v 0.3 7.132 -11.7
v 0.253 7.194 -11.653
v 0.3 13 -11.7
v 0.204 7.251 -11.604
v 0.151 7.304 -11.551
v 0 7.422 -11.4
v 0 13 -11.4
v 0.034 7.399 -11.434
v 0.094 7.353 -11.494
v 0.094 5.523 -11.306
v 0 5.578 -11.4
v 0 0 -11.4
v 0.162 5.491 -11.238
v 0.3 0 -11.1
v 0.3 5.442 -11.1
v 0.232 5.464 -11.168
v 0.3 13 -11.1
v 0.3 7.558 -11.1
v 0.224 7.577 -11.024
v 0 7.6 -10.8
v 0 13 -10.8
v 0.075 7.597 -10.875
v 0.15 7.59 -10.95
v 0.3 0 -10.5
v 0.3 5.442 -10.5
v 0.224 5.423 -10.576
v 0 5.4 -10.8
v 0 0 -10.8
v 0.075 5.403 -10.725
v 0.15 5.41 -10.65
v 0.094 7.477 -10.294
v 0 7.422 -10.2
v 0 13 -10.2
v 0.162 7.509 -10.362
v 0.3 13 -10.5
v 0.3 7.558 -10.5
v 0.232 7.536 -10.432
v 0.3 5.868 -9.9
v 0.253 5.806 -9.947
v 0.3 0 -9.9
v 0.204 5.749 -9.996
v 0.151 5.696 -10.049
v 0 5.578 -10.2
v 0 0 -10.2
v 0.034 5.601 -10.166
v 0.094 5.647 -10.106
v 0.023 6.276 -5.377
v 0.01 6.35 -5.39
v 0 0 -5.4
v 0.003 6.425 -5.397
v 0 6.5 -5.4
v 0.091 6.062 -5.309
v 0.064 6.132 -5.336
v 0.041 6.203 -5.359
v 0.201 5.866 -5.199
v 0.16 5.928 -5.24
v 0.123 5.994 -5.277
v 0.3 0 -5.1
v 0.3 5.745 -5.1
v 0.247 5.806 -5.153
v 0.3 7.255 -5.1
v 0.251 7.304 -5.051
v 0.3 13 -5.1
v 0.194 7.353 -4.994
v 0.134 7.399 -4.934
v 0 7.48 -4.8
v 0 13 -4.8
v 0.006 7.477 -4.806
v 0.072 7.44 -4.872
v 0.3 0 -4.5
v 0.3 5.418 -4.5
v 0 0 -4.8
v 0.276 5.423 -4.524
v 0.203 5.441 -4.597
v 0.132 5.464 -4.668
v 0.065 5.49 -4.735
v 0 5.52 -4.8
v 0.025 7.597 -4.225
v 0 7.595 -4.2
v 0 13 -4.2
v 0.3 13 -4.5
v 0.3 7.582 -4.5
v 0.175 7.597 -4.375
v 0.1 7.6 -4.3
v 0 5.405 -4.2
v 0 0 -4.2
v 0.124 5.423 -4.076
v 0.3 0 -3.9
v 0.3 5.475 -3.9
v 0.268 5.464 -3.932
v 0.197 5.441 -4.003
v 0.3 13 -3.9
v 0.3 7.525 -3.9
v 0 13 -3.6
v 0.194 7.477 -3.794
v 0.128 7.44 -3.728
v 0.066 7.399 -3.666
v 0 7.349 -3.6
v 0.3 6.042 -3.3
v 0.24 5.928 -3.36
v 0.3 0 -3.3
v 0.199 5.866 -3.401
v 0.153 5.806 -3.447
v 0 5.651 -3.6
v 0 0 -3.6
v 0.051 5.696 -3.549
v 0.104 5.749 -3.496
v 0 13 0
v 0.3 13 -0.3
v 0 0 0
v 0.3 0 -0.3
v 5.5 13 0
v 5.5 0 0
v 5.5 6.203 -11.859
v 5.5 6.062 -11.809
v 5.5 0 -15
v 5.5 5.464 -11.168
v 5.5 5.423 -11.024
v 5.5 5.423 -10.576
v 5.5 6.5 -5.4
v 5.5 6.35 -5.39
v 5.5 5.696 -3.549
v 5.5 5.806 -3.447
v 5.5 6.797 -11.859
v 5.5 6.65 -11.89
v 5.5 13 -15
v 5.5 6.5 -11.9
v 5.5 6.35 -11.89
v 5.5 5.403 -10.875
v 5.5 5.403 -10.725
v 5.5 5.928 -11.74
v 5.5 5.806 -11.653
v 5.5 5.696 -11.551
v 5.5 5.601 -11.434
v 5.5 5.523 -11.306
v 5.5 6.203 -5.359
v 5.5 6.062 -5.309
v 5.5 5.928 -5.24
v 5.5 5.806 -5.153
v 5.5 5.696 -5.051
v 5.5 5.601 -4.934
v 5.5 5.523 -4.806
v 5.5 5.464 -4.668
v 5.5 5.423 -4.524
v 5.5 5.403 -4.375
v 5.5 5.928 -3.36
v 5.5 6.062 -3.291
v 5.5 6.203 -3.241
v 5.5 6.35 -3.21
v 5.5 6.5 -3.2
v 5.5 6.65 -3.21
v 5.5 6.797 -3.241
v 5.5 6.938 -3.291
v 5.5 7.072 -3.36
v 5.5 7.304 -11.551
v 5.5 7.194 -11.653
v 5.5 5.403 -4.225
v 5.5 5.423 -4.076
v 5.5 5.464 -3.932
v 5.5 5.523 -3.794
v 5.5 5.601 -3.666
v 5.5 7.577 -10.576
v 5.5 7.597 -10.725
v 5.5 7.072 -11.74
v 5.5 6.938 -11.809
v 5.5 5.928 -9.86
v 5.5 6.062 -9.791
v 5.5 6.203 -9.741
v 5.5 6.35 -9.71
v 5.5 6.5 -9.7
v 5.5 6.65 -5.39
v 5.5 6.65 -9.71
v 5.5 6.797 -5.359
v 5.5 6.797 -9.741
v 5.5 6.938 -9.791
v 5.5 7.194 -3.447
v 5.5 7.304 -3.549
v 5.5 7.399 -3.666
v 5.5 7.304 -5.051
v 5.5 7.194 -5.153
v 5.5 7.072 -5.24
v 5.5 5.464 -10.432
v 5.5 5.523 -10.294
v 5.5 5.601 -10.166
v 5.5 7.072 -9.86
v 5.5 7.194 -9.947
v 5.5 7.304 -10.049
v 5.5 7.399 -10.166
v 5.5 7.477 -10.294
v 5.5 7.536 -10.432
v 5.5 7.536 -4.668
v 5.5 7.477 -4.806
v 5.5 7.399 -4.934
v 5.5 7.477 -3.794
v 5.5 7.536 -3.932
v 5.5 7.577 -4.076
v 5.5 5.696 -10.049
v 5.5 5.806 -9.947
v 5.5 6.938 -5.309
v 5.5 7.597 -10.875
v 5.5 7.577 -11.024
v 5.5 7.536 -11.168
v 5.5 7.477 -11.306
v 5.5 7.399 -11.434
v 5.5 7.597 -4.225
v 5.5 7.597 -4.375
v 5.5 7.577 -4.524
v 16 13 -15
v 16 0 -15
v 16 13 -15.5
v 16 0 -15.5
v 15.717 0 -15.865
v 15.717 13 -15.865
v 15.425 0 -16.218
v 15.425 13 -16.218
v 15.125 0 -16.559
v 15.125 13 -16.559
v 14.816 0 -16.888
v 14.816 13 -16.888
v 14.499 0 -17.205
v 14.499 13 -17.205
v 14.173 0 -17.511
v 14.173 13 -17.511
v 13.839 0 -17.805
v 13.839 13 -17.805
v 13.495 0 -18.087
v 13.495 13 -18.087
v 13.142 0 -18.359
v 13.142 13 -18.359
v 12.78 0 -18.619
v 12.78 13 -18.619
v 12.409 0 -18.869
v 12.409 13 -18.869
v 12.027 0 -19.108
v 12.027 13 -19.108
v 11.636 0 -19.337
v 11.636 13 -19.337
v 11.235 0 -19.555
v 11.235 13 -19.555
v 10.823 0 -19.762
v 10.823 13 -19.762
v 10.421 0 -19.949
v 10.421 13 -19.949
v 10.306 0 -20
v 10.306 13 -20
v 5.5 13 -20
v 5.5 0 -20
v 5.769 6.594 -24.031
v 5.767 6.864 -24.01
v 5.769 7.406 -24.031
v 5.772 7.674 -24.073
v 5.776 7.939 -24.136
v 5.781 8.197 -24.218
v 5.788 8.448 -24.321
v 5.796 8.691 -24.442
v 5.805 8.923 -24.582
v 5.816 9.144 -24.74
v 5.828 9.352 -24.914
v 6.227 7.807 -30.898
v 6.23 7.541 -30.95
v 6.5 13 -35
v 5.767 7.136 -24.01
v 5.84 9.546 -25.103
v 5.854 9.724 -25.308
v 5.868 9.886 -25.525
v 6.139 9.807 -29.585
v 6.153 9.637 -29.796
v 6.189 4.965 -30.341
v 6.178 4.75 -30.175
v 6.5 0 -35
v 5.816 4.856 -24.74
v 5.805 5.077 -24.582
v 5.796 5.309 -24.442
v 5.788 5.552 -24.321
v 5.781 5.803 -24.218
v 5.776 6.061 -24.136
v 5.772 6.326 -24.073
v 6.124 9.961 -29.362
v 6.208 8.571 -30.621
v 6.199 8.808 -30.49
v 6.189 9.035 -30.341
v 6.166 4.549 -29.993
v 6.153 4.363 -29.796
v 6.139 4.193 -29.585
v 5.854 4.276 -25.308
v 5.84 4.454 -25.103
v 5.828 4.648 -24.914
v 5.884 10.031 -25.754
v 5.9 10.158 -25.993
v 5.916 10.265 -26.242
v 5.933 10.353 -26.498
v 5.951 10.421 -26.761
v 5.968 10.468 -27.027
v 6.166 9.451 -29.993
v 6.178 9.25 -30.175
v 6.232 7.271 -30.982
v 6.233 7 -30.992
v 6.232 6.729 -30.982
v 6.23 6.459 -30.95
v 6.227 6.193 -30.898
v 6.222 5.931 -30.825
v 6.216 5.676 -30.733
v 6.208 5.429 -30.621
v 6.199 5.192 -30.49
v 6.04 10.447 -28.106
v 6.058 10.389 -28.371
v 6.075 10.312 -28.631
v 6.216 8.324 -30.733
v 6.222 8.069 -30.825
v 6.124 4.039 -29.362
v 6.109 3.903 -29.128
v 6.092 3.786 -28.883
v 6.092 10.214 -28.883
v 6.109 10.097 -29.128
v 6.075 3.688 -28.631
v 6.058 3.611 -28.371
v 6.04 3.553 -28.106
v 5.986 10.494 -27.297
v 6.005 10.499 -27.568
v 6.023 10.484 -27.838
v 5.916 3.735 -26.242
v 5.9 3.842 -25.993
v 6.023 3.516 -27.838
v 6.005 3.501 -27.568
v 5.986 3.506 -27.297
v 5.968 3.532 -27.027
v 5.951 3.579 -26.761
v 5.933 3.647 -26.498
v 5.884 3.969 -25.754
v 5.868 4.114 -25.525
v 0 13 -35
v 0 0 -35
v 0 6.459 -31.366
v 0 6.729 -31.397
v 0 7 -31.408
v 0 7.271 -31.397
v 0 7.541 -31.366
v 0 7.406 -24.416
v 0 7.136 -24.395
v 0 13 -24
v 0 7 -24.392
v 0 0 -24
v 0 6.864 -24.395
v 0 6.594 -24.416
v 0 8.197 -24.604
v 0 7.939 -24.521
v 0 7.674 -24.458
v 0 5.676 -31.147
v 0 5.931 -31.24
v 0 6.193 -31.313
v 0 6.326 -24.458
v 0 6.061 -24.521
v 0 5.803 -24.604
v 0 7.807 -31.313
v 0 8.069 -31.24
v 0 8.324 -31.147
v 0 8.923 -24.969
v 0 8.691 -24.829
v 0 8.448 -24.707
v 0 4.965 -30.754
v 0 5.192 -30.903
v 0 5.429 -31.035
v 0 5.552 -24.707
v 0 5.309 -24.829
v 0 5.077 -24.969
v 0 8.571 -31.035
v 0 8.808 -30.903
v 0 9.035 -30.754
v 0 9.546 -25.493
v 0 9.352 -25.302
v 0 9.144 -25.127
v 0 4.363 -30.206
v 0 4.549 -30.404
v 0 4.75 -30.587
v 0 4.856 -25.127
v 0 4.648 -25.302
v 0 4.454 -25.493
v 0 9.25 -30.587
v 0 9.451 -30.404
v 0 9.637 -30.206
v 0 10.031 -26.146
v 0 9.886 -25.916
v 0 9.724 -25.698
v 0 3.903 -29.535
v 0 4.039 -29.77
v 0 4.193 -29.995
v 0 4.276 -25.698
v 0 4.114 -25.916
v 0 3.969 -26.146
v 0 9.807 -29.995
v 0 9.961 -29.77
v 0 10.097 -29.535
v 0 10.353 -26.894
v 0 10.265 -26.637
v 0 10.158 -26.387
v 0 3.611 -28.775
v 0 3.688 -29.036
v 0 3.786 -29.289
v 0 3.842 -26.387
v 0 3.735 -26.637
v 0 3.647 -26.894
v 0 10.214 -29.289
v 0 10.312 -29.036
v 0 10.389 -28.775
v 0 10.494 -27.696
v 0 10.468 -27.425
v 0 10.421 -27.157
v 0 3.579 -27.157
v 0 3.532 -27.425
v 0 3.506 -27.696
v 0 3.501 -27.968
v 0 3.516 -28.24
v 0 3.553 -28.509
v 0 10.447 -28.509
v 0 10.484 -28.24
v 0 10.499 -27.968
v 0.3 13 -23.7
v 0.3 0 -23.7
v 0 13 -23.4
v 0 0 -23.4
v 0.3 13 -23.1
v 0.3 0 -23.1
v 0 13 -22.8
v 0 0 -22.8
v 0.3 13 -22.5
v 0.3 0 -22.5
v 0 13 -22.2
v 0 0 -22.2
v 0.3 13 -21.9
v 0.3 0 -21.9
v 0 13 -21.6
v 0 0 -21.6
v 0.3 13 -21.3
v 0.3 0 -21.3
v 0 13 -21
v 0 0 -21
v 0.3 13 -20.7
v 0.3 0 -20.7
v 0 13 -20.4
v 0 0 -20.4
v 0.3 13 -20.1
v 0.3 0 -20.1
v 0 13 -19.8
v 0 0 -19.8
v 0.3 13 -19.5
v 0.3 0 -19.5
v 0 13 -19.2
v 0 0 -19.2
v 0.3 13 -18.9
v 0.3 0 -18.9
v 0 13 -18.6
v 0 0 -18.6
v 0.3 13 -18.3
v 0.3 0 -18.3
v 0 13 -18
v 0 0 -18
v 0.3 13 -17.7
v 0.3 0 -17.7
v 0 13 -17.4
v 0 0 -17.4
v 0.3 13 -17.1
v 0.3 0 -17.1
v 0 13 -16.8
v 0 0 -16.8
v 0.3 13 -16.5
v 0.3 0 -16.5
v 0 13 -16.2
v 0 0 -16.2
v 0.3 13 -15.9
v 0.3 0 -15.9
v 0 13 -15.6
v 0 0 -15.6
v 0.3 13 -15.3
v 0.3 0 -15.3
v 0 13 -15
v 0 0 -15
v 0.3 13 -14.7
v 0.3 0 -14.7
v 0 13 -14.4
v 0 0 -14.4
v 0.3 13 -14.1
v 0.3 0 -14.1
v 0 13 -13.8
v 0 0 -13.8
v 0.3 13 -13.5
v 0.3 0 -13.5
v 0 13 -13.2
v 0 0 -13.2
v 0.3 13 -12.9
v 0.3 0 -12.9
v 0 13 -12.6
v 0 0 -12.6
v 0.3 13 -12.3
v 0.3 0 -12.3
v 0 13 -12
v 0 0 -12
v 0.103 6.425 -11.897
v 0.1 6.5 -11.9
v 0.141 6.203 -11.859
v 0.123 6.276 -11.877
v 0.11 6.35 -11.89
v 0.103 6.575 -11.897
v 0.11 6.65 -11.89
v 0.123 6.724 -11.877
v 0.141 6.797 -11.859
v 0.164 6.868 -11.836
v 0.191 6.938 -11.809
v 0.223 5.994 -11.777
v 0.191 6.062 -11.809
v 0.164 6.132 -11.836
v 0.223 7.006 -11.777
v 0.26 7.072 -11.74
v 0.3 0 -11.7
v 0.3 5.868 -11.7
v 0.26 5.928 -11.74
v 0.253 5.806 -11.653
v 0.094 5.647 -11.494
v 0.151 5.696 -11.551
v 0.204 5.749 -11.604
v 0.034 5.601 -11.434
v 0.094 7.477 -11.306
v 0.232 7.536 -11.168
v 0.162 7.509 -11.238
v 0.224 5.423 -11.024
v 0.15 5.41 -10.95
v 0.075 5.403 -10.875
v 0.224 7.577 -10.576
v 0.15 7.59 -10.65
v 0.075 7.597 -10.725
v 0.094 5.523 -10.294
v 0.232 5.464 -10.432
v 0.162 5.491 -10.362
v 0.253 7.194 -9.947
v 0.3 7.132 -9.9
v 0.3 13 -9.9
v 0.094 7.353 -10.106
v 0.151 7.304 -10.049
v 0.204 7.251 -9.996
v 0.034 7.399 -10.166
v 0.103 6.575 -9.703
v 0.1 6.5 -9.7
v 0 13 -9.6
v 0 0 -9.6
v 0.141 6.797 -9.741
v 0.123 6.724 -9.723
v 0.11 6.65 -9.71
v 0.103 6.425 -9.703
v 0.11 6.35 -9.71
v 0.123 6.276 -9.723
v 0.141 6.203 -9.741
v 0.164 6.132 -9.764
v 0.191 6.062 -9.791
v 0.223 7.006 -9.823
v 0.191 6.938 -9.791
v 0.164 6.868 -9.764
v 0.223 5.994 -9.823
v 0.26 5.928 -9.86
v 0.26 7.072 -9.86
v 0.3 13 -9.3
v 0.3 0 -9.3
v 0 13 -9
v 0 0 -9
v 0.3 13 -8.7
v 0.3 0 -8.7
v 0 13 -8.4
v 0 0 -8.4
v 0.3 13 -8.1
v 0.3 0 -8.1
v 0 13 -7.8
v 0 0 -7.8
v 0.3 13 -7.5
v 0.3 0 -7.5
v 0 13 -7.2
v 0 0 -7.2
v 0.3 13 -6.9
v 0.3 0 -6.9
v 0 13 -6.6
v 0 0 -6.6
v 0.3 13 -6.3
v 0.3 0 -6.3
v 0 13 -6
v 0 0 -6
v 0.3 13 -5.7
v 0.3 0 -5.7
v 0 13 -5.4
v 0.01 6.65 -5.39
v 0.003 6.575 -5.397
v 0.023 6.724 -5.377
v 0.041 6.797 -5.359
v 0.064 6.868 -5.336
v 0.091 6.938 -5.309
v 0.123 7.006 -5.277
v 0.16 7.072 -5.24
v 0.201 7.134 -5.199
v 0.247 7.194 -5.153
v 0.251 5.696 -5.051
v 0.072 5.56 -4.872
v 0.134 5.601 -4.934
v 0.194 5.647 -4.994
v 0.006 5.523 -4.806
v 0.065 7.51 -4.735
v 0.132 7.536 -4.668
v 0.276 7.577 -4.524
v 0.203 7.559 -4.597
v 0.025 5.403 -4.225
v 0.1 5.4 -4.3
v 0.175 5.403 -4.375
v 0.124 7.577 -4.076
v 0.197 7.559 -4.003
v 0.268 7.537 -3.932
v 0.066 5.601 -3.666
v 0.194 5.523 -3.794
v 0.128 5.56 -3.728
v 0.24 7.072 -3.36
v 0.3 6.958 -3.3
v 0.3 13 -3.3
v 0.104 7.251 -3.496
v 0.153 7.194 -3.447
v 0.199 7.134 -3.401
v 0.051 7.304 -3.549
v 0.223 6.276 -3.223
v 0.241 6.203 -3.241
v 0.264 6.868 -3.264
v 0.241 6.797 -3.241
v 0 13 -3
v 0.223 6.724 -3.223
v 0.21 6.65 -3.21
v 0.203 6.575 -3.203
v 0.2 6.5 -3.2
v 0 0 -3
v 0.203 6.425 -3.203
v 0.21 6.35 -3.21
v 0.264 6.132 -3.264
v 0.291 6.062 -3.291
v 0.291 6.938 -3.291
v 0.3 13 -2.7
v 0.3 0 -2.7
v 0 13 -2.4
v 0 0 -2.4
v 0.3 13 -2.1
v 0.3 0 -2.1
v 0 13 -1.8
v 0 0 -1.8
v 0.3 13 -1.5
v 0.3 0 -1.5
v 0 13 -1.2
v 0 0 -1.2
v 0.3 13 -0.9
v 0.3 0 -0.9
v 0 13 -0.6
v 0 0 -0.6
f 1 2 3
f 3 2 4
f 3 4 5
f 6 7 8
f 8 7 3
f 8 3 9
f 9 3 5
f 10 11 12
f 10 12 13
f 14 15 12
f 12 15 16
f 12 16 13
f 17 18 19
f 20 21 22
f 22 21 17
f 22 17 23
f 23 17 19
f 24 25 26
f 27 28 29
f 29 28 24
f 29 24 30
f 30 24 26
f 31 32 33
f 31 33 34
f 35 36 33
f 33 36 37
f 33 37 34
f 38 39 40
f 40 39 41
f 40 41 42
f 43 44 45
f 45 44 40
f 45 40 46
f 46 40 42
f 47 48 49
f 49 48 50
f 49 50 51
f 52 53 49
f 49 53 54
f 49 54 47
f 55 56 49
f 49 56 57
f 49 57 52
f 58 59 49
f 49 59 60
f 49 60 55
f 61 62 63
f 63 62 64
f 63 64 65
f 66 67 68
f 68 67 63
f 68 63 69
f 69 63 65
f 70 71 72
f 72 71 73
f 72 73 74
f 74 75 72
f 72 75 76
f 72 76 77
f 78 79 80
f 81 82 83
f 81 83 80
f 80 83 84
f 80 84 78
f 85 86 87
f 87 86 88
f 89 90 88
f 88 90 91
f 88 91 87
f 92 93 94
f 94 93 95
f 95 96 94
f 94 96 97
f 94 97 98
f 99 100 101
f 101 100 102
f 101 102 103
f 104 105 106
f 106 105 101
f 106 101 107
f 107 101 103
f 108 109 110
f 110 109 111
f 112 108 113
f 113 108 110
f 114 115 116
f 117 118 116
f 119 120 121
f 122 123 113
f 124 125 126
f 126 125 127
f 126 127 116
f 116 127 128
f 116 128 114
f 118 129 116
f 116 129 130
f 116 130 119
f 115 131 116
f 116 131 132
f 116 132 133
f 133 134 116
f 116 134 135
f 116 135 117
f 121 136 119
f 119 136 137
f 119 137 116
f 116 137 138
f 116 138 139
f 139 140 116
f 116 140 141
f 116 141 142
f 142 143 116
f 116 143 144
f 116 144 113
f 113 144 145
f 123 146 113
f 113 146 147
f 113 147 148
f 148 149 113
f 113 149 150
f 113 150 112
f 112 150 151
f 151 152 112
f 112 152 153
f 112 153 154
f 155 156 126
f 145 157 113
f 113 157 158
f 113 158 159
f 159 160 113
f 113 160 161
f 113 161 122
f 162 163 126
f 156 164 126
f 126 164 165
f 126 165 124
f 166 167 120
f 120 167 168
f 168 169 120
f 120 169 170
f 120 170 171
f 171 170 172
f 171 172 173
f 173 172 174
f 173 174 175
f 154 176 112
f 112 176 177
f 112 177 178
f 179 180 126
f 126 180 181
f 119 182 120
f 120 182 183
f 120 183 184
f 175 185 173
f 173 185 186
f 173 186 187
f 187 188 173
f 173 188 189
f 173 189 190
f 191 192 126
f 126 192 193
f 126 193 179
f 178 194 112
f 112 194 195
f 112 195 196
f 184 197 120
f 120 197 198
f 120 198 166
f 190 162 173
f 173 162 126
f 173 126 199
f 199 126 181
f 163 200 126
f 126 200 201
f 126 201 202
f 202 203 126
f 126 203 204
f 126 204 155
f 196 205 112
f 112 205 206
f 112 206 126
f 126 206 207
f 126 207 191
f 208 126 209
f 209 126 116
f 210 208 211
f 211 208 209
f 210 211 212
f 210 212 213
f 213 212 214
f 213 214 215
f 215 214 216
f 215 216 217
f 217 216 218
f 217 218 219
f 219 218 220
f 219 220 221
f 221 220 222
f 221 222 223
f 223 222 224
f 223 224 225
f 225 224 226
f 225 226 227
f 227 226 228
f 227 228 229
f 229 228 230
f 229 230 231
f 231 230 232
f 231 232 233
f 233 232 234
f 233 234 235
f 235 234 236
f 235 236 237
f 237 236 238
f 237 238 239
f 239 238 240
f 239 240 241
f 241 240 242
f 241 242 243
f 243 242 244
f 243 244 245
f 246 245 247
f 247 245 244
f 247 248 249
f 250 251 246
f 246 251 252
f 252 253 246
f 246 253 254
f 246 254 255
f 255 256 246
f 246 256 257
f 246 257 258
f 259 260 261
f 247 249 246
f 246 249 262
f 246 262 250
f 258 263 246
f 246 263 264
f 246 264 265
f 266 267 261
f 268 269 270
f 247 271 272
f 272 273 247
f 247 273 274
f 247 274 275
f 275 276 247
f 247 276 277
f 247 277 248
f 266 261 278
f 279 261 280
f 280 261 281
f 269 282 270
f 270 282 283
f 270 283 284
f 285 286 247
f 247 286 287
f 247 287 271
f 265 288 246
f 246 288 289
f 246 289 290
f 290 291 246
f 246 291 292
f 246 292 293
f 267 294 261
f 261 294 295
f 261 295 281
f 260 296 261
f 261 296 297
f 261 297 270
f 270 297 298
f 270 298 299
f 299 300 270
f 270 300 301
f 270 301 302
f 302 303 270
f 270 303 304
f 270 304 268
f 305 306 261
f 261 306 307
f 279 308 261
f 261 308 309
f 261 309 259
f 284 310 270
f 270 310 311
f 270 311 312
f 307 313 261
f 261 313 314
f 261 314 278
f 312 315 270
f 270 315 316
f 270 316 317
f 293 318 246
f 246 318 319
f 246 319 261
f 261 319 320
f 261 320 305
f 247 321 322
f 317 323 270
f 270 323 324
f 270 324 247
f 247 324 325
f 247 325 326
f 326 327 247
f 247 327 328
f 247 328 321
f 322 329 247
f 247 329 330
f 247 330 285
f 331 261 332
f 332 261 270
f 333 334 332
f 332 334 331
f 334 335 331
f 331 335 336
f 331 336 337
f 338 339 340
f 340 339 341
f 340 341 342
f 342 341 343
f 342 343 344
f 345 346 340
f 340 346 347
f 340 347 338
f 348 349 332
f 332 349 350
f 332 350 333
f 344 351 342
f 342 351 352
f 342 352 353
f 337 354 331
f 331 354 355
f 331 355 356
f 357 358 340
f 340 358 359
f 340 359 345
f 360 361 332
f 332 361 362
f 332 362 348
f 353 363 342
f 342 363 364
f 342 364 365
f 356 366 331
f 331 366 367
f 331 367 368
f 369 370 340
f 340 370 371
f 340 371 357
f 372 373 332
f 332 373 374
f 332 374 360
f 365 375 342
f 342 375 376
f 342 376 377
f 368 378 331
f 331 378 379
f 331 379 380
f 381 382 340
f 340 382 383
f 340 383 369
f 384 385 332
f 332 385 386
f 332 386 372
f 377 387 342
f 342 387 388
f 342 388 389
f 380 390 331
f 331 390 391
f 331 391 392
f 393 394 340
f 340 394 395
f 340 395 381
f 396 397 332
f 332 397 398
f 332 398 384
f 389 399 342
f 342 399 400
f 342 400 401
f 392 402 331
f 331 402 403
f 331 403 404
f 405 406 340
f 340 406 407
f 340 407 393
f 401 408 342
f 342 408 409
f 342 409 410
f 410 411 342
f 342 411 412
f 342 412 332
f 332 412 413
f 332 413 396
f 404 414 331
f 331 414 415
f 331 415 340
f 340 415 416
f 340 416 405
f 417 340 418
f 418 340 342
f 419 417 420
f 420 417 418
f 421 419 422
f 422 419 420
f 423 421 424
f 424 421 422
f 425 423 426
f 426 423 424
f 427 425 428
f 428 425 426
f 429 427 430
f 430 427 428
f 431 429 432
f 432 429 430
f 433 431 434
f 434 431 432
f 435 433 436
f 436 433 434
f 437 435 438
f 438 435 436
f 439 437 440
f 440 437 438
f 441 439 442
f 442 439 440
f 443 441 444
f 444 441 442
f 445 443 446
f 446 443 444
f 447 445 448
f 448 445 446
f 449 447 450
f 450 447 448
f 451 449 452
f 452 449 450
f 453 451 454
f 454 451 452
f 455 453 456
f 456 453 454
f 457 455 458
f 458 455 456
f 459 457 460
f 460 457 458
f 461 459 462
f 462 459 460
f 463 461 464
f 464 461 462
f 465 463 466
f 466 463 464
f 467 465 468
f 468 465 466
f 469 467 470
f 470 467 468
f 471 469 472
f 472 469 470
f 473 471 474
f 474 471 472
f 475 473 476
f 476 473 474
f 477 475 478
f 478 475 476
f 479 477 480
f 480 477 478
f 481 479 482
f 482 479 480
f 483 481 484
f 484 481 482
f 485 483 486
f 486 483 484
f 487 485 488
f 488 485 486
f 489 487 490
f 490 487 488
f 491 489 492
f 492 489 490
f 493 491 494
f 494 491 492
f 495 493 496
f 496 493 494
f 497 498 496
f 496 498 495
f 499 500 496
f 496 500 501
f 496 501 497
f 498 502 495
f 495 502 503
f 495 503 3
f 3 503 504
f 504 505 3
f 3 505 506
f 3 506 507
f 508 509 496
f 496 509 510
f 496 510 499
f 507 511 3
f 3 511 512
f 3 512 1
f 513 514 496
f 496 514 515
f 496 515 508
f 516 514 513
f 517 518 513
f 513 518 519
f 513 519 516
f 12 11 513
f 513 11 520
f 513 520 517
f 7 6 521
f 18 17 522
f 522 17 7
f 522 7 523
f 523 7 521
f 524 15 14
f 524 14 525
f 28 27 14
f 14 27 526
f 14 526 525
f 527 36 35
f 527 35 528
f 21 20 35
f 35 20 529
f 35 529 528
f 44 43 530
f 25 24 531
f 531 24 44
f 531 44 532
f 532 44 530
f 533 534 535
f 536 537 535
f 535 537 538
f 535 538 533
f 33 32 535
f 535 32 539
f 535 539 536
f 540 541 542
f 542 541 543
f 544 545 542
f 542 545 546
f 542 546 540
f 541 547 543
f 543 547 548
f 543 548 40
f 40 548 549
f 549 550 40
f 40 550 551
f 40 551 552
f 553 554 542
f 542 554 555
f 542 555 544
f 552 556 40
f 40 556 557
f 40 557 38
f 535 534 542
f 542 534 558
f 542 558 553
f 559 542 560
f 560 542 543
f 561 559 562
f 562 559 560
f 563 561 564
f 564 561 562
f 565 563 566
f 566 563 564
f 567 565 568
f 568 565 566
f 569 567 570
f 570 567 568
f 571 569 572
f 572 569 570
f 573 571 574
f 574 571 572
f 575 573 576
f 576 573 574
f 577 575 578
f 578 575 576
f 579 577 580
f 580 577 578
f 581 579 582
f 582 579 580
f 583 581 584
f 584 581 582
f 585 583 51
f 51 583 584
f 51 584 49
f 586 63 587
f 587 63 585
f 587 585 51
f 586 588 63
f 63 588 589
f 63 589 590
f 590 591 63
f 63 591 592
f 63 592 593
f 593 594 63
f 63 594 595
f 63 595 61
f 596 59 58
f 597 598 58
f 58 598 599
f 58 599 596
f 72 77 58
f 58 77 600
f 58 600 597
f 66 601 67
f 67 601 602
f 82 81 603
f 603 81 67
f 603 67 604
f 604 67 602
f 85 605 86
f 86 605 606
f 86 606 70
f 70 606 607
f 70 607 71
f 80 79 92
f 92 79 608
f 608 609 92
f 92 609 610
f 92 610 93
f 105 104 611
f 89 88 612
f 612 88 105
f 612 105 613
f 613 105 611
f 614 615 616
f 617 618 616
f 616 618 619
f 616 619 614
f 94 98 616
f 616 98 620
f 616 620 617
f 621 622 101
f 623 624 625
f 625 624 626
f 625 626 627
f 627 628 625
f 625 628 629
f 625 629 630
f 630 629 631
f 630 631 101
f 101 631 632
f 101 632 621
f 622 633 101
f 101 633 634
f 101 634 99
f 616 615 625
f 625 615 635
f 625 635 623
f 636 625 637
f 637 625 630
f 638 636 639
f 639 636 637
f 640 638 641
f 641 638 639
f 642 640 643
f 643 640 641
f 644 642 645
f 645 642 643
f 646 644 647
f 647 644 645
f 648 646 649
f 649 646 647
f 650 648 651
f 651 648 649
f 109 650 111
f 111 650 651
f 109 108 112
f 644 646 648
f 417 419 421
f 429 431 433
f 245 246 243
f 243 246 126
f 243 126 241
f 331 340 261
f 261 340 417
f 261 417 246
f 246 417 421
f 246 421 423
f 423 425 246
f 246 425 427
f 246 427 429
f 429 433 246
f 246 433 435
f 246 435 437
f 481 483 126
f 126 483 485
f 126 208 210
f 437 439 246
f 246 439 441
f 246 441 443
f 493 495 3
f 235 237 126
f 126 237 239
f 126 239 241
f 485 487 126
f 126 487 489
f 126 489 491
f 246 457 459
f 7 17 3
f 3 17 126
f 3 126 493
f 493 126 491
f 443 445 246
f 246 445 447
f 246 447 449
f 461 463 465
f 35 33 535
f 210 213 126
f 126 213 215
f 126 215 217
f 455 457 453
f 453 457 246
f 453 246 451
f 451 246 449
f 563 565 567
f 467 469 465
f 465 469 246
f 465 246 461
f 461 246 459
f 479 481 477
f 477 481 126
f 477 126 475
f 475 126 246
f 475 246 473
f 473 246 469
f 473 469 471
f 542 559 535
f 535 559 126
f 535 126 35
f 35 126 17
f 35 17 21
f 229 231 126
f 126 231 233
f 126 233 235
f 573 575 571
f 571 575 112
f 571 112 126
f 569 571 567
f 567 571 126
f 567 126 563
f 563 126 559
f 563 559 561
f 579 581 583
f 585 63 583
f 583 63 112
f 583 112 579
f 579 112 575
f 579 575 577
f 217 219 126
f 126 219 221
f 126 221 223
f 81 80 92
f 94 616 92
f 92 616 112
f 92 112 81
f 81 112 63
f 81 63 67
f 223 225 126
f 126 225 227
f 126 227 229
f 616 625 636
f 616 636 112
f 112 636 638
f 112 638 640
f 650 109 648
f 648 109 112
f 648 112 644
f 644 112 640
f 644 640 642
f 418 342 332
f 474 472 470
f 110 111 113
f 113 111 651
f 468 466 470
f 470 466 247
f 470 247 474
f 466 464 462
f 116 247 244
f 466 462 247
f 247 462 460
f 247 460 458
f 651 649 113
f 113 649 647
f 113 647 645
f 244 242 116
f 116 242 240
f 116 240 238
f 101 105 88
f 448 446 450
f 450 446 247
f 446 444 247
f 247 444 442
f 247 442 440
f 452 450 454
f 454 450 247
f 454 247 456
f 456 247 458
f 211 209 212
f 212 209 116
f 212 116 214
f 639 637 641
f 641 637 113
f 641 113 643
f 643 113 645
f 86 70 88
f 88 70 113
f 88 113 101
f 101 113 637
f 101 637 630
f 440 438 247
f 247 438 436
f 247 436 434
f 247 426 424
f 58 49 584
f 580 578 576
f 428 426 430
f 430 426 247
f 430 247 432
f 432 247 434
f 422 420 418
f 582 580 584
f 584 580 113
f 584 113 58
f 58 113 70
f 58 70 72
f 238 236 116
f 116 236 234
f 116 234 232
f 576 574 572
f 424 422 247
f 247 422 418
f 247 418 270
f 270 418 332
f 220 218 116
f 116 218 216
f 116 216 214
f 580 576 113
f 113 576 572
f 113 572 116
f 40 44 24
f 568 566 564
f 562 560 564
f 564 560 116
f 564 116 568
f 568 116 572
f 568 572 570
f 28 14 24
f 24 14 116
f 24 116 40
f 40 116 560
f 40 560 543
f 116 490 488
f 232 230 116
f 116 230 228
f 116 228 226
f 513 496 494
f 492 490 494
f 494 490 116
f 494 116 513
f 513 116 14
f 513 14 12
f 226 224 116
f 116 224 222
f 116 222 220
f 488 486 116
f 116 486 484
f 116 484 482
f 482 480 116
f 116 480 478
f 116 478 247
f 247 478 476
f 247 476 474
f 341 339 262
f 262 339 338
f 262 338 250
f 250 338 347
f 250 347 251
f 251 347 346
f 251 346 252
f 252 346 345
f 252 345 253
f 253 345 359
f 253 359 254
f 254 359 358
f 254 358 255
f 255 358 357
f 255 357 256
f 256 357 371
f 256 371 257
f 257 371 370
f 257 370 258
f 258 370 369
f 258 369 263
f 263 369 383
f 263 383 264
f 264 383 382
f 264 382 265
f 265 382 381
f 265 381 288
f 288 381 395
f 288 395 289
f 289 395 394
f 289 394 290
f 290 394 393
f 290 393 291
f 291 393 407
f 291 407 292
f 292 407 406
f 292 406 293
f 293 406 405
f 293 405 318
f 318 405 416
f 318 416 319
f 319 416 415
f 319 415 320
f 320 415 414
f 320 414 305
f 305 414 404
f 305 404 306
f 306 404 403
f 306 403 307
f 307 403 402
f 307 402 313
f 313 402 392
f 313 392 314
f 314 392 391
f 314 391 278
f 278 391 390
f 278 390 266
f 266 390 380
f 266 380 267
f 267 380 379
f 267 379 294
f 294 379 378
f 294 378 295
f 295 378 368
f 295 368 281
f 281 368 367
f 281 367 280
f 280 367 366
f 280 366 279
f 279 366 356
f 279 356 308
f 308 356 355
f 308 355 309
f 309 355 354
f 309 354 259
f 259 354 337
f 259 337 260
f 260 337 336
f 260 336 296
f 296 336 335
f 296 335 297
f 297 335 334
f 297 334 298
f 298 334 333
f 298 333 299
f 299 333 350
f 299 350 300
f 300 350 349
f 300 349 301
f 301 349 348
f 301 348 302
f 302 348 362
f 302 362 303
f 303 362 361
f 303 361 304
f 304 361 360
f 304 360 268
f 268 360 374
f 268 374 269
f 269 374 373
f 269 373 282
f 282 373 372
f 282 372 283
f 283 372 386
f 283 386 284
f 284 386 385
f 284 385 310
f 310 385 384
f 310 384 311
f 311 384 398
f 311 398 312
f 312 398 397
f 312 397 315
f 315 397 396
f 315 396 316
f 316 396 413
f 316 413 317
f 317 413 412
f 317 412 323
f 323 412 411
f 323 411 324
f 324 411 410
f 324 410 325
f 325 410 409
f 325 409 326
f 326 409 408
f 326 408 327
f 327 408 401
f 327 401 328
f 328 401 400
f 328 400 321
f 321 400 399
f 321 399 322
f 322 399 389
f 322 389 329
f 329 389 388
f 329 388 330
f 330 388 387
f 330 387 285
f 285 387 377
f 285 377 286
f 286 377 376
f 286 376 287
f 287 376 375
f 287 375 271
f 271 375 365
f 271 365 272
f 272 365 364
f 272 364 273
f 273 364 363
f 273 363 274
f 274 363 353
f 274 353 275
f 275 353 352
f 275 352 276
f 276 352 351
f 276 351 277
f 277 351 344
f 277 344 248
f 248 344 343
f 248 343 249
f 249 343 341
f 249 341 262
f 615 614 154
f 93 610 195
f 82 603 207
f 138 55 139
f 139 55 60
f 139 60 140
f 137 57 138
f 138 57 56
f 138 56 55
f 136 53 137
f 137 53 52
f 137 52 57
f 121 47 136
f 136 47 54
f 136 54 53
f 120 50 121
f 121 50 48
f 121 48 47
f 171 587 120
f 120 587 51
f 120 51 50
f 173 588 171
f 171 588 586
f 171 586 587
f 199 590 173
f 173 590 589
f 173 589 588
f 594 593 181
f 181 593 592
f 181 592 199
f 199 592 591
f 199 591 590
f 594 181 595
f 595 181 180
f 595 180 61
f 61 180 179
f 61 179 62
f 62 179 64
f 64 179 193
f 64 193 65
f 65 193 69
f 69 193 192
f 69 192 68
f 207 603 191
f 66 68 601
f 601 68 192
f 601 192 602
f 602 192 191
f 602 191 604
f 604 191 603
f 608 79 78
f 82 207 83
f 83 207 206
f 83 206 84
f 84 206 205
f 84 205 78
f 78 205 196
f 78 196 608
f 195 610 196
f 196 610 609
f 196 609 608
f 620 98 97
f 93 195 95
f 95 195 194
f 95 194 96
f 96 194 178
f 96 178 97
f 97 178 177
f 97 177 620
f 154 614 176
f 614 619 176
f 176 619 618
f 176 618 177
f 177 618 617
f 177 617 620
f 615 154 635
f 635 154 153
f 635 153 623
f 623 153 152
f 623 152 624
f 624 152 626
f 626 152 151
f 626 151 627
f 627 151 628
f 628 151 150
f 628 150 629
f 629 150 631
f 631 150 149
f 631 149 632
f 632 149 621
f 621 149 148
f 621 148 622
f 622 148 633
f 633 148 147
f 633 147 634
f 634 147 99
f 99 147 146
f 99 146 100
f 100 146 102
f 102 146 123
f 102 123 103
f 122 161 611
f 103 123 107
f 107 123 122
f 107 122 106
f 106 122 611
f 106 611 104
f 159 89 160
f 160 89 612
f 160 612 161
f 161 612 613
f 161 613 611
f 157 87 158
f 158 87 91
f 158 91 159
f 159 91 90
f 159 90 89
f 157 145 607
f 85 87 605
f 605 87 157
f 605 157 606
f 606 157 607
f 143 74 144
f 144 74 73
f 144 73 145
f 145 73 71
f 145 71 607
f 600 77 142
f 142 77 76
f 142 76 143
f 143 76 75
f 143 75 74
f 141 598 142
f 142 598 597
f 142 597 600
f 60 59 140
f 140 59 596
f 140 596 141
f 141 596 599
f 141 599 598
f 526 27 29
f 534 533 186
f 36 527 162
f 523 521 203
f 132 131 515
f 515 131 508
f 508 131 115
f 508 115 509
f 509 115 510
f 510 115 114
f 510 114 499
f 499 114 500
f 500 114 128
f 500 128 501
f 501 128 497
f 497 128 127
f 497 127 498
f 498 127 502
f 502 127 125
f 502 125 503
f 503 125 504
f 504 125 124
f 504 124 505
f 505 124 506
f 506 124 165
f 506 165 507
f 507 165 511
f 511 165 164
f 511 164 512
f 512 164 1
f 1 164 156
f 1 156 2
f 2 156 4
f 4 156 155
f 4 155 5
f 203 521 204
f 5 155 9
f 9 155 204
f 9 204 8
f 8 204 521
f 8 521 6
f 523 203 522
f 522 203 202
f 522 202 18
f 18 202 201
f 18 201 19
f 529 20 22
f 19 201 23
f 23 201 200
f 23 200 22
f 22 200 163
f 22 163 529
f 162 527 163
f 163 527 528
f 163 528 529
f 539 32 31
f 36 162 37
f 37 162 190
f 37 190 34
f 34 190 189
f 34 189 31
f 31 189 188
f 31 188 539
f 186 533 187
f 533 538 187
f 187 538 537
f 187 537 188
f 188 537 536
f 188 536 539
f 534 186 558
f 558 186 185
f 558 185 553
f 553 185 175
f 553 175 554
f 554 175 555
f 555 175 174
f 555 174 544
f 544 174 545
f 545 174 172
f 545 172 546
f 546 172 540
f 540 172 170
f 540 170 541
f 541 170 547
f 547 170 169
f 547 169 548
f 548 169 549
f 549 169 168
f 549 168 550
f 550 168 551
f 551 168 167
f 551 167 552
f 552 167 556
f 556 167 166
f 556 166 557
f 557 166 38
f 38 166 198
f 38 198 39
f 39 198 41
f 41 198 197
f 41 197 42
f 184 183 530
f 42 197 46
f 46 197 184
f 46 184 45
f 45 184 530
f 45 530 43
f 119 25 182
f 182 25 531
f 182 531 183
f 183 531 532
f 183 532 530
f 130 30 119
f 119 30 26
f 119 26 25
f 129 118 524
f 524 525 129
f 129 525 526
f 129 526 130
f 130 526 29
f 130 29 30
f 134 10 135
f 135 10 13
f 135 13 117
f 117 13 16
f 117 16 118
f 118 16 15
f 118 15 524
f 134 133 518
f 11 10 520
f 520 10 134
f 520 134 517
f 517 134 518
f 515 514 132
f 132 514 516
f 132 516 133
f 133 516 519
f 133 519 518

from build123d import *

# Parameters (mm, degrees)
EXTRUDE_1_DEPTH     = 13
SKETCH_4_R          = 3.5
CUT_EXTRUDE_3_DEPTH = 40.419530037
SKETCH_5_R          = 1.1
CUT_EXTRUDE_4_DEPTH = 10


with BuildPart() as part:
    # 草图1 → 凸台-拉伸1 (new body)
    with BuildSketch(Plane(origin=(0, 0, 0), x_dir=(1, 0, 0), z_dir=(0, 1, 0))):
        with BuildLine():
            Line((0, 35), (6.5, 35))
            Line((6.5, 35), (5.5, 20))
            Line((5.5, 20), (10.30634728, 20))
            add(Edge.make_bspline(
                [(10.30634728, 20), (13.762117506, 18.48353704), (16, 15.5)],
                knots=[0, 0, 0, 1, 1, 1], degree=2))
            Line((16, 15.5), (16, 15))
            Line((16, 15), (5.5, 15))
            Line((5.5, 15), (5.5, 0))
            Line((5.5, 0), (0, 0))
            Line((0, 0), (0.3, 0.3))
            Line((0.3, 0.3), (0, 0.6))
            Line((0, 0.6), (0.3, 0.9))
            Line((0.3, 0.9), (0, 1.2))
            Line((0, 1.2), (0.3, 1.5))
            Line((0.3, 1.5), (0, 1.8))
            Line((0, 1.8), (0.3, 2.1))
            Line((0.3, 2.1), (0, 2.4))
            Line((0, 2.4), (0.3, 2.7))
            Line((0.3, 2.7), (0, 3))
            Line((0, 3), (0.3, 3.3))
            Line((0.3, 3.3), (0, 3.6))
            Line((0, 3.6), (0.3, 3.9))
            Line((0.3, 3.9), (0, 4.2))
            Line((0, 4.2), (0.3, 4.5))
            Line((0.3, 4.5), (0, 4.8))
            Line((0, 4.8), (0.3, 5.1))
            Line((0.3, 5.1), (0, 5.4))
            Line((0, 5.4), (0.3, 5.7))
            Line((0.3, 5.7), (0, 6))
            Line((0, 6), (0.3, 6.3))
            Line((0.3, 6.3), (0, 6.6))
            Line((0, 6.6), (0.3, 6.9))
            Line((0.3, 6.9), (0, 7.2))
            Line((0, 7.2), (0.3, 7.5))
            Line((0.3, 7.5), (0, 7.8))
            Line((0, 7.8), (0.3, 8.1))
            Line((0.3, 8.1), (0, 8.4))
            Line((0, 8.4), (0.3, 8.7))
            Line((0.3, 8.7), (0, 9))
            Line((0, 9), (0.3, 9.3))
            Line((0.3, 9.3), (0, 9.6))
            Line((0, 9.6), (0.3, 9.9))
            Line((0.3, 9.9), (0, 10.2))
            Line((0, 10.2), (0.3, 10.5))
            Line((0.3, 10.5), (0, 10.8))
            Line((0, 10.8), (0.3, 11.1))
            Line((0.3, 11.1), (0, 11.4))
            Line((0, 11.4), (0.3, 11.7))
            Line((0.3, 11.7), (0, 12))
            Line((0, 12), (0.3, 12.3))
            Line((0.3, 12.3), (0, 12.6))
            Line((0, 12.6), (0.3, 12.9))
            Line((0.3, 12.9), (0, 13.2))
            Line((0, 13.2), (0.3, 13.5))
            Line((0.3, 13.5), (0, 13.8))
            Line((0, 13.8), (0.3, 14.1))
            Line((0.3, 14.1), (0, 14.4))
            Line((0, 14.4), (0.3, 14.7))
            Line((0.3, 14.7), (0, 15))
            Line((0, 15), (0.3, 15.3))
            Line((0.3, 15.3), (0, 15.6))
            Line((0, 15.6), (0.3, 15.9))
            Line((0.3, 15.9), (0, 16.2))
            Line((0, 16.2), (0.3, 16.5))
            Line((0.3, 16.5), (0, 16.8))
            Line((0, 16.8), (0.3, 17.1))
            Line((0.3, 17.1), (0, 17.4))
            Line((0, 17.4), (0.3, 17.7))
            Line((0.3, 17.7), (0, 18))
            Line((0, 18), (0.3, 18.3))
            Line((0.3, 18.3), (0, 18.6))
            Line((0, 18.6), (0.3, 18.9))
            Line((0.3, 18.9), (0, 19.2))
            Line((0, 19.2), (0.3, 19.5))
            Line((0.3, 19.5), (0, 19.8))
            Line((0, 19.8), (0.3, 20.1))
            Line((0.3, 20.1), (0, 20.4))
            Line((0, 20.4), (0.3, 20.7))
            Line((0.3, 20.7), (0, 21))
            Line((0, 21), (0.3, 21.3))
            Line((0.3, 21.3), (0, 21.6))
            Line((0, 21.6), (0.3, 21.9))
            Line((0.3, 21.9), (0, 22.2))
            Line((0, 22.2), (0.3, 22.5))
            Line((0.3, 22.5), (0, 22.8))
            Line((0, 22.8), (0.3, 23.1))
            Line((0.3, 23.1), (0, 23.4))
            Line((0, 23.4), (0.3, 23.7))
            Line((0.3, 23.7), (0, 24))
            Line((0, 24), (0, 35))
        make_face()
    extrude(amount=EXTRUDE_1_DEPTH)

    # 草图4 → 切除-拉伸3 (cut, through all)
    with BuildSketch(Plane(origin=(4.148230088, 0, 0.276548673), x_dir=(0.06651901052377392, 0, -0.9977851578566089), z_dir=(0.9977851578566089, 0, 0.06651901052377392))):
        with Locations((27.838205904, 7)):
            Circle(SKETCH_4_R)
    extrude(amount=-CUT_EXTRUDE_3_DEPTH, mode=Mode.SUBTRACT)

    # 草图5 → 切除-拉伸4 (cut)
    with BuildSketch(Plane(origin=(5.5, 0, 0), x_dir=(0, 0, -1), z_dir=(1, 0, 0))):
        with Locations((10.8, 6.5)):
            Circle(SKETCH_5_R)
        with Locations((4.3, 6.5)):
            Circle(SKETCH_5_R)
    extrude(amount=-CUT_EXTRUDE_4_DEPTH, mode=Mode.SUBTRACT)


solid = part.part
